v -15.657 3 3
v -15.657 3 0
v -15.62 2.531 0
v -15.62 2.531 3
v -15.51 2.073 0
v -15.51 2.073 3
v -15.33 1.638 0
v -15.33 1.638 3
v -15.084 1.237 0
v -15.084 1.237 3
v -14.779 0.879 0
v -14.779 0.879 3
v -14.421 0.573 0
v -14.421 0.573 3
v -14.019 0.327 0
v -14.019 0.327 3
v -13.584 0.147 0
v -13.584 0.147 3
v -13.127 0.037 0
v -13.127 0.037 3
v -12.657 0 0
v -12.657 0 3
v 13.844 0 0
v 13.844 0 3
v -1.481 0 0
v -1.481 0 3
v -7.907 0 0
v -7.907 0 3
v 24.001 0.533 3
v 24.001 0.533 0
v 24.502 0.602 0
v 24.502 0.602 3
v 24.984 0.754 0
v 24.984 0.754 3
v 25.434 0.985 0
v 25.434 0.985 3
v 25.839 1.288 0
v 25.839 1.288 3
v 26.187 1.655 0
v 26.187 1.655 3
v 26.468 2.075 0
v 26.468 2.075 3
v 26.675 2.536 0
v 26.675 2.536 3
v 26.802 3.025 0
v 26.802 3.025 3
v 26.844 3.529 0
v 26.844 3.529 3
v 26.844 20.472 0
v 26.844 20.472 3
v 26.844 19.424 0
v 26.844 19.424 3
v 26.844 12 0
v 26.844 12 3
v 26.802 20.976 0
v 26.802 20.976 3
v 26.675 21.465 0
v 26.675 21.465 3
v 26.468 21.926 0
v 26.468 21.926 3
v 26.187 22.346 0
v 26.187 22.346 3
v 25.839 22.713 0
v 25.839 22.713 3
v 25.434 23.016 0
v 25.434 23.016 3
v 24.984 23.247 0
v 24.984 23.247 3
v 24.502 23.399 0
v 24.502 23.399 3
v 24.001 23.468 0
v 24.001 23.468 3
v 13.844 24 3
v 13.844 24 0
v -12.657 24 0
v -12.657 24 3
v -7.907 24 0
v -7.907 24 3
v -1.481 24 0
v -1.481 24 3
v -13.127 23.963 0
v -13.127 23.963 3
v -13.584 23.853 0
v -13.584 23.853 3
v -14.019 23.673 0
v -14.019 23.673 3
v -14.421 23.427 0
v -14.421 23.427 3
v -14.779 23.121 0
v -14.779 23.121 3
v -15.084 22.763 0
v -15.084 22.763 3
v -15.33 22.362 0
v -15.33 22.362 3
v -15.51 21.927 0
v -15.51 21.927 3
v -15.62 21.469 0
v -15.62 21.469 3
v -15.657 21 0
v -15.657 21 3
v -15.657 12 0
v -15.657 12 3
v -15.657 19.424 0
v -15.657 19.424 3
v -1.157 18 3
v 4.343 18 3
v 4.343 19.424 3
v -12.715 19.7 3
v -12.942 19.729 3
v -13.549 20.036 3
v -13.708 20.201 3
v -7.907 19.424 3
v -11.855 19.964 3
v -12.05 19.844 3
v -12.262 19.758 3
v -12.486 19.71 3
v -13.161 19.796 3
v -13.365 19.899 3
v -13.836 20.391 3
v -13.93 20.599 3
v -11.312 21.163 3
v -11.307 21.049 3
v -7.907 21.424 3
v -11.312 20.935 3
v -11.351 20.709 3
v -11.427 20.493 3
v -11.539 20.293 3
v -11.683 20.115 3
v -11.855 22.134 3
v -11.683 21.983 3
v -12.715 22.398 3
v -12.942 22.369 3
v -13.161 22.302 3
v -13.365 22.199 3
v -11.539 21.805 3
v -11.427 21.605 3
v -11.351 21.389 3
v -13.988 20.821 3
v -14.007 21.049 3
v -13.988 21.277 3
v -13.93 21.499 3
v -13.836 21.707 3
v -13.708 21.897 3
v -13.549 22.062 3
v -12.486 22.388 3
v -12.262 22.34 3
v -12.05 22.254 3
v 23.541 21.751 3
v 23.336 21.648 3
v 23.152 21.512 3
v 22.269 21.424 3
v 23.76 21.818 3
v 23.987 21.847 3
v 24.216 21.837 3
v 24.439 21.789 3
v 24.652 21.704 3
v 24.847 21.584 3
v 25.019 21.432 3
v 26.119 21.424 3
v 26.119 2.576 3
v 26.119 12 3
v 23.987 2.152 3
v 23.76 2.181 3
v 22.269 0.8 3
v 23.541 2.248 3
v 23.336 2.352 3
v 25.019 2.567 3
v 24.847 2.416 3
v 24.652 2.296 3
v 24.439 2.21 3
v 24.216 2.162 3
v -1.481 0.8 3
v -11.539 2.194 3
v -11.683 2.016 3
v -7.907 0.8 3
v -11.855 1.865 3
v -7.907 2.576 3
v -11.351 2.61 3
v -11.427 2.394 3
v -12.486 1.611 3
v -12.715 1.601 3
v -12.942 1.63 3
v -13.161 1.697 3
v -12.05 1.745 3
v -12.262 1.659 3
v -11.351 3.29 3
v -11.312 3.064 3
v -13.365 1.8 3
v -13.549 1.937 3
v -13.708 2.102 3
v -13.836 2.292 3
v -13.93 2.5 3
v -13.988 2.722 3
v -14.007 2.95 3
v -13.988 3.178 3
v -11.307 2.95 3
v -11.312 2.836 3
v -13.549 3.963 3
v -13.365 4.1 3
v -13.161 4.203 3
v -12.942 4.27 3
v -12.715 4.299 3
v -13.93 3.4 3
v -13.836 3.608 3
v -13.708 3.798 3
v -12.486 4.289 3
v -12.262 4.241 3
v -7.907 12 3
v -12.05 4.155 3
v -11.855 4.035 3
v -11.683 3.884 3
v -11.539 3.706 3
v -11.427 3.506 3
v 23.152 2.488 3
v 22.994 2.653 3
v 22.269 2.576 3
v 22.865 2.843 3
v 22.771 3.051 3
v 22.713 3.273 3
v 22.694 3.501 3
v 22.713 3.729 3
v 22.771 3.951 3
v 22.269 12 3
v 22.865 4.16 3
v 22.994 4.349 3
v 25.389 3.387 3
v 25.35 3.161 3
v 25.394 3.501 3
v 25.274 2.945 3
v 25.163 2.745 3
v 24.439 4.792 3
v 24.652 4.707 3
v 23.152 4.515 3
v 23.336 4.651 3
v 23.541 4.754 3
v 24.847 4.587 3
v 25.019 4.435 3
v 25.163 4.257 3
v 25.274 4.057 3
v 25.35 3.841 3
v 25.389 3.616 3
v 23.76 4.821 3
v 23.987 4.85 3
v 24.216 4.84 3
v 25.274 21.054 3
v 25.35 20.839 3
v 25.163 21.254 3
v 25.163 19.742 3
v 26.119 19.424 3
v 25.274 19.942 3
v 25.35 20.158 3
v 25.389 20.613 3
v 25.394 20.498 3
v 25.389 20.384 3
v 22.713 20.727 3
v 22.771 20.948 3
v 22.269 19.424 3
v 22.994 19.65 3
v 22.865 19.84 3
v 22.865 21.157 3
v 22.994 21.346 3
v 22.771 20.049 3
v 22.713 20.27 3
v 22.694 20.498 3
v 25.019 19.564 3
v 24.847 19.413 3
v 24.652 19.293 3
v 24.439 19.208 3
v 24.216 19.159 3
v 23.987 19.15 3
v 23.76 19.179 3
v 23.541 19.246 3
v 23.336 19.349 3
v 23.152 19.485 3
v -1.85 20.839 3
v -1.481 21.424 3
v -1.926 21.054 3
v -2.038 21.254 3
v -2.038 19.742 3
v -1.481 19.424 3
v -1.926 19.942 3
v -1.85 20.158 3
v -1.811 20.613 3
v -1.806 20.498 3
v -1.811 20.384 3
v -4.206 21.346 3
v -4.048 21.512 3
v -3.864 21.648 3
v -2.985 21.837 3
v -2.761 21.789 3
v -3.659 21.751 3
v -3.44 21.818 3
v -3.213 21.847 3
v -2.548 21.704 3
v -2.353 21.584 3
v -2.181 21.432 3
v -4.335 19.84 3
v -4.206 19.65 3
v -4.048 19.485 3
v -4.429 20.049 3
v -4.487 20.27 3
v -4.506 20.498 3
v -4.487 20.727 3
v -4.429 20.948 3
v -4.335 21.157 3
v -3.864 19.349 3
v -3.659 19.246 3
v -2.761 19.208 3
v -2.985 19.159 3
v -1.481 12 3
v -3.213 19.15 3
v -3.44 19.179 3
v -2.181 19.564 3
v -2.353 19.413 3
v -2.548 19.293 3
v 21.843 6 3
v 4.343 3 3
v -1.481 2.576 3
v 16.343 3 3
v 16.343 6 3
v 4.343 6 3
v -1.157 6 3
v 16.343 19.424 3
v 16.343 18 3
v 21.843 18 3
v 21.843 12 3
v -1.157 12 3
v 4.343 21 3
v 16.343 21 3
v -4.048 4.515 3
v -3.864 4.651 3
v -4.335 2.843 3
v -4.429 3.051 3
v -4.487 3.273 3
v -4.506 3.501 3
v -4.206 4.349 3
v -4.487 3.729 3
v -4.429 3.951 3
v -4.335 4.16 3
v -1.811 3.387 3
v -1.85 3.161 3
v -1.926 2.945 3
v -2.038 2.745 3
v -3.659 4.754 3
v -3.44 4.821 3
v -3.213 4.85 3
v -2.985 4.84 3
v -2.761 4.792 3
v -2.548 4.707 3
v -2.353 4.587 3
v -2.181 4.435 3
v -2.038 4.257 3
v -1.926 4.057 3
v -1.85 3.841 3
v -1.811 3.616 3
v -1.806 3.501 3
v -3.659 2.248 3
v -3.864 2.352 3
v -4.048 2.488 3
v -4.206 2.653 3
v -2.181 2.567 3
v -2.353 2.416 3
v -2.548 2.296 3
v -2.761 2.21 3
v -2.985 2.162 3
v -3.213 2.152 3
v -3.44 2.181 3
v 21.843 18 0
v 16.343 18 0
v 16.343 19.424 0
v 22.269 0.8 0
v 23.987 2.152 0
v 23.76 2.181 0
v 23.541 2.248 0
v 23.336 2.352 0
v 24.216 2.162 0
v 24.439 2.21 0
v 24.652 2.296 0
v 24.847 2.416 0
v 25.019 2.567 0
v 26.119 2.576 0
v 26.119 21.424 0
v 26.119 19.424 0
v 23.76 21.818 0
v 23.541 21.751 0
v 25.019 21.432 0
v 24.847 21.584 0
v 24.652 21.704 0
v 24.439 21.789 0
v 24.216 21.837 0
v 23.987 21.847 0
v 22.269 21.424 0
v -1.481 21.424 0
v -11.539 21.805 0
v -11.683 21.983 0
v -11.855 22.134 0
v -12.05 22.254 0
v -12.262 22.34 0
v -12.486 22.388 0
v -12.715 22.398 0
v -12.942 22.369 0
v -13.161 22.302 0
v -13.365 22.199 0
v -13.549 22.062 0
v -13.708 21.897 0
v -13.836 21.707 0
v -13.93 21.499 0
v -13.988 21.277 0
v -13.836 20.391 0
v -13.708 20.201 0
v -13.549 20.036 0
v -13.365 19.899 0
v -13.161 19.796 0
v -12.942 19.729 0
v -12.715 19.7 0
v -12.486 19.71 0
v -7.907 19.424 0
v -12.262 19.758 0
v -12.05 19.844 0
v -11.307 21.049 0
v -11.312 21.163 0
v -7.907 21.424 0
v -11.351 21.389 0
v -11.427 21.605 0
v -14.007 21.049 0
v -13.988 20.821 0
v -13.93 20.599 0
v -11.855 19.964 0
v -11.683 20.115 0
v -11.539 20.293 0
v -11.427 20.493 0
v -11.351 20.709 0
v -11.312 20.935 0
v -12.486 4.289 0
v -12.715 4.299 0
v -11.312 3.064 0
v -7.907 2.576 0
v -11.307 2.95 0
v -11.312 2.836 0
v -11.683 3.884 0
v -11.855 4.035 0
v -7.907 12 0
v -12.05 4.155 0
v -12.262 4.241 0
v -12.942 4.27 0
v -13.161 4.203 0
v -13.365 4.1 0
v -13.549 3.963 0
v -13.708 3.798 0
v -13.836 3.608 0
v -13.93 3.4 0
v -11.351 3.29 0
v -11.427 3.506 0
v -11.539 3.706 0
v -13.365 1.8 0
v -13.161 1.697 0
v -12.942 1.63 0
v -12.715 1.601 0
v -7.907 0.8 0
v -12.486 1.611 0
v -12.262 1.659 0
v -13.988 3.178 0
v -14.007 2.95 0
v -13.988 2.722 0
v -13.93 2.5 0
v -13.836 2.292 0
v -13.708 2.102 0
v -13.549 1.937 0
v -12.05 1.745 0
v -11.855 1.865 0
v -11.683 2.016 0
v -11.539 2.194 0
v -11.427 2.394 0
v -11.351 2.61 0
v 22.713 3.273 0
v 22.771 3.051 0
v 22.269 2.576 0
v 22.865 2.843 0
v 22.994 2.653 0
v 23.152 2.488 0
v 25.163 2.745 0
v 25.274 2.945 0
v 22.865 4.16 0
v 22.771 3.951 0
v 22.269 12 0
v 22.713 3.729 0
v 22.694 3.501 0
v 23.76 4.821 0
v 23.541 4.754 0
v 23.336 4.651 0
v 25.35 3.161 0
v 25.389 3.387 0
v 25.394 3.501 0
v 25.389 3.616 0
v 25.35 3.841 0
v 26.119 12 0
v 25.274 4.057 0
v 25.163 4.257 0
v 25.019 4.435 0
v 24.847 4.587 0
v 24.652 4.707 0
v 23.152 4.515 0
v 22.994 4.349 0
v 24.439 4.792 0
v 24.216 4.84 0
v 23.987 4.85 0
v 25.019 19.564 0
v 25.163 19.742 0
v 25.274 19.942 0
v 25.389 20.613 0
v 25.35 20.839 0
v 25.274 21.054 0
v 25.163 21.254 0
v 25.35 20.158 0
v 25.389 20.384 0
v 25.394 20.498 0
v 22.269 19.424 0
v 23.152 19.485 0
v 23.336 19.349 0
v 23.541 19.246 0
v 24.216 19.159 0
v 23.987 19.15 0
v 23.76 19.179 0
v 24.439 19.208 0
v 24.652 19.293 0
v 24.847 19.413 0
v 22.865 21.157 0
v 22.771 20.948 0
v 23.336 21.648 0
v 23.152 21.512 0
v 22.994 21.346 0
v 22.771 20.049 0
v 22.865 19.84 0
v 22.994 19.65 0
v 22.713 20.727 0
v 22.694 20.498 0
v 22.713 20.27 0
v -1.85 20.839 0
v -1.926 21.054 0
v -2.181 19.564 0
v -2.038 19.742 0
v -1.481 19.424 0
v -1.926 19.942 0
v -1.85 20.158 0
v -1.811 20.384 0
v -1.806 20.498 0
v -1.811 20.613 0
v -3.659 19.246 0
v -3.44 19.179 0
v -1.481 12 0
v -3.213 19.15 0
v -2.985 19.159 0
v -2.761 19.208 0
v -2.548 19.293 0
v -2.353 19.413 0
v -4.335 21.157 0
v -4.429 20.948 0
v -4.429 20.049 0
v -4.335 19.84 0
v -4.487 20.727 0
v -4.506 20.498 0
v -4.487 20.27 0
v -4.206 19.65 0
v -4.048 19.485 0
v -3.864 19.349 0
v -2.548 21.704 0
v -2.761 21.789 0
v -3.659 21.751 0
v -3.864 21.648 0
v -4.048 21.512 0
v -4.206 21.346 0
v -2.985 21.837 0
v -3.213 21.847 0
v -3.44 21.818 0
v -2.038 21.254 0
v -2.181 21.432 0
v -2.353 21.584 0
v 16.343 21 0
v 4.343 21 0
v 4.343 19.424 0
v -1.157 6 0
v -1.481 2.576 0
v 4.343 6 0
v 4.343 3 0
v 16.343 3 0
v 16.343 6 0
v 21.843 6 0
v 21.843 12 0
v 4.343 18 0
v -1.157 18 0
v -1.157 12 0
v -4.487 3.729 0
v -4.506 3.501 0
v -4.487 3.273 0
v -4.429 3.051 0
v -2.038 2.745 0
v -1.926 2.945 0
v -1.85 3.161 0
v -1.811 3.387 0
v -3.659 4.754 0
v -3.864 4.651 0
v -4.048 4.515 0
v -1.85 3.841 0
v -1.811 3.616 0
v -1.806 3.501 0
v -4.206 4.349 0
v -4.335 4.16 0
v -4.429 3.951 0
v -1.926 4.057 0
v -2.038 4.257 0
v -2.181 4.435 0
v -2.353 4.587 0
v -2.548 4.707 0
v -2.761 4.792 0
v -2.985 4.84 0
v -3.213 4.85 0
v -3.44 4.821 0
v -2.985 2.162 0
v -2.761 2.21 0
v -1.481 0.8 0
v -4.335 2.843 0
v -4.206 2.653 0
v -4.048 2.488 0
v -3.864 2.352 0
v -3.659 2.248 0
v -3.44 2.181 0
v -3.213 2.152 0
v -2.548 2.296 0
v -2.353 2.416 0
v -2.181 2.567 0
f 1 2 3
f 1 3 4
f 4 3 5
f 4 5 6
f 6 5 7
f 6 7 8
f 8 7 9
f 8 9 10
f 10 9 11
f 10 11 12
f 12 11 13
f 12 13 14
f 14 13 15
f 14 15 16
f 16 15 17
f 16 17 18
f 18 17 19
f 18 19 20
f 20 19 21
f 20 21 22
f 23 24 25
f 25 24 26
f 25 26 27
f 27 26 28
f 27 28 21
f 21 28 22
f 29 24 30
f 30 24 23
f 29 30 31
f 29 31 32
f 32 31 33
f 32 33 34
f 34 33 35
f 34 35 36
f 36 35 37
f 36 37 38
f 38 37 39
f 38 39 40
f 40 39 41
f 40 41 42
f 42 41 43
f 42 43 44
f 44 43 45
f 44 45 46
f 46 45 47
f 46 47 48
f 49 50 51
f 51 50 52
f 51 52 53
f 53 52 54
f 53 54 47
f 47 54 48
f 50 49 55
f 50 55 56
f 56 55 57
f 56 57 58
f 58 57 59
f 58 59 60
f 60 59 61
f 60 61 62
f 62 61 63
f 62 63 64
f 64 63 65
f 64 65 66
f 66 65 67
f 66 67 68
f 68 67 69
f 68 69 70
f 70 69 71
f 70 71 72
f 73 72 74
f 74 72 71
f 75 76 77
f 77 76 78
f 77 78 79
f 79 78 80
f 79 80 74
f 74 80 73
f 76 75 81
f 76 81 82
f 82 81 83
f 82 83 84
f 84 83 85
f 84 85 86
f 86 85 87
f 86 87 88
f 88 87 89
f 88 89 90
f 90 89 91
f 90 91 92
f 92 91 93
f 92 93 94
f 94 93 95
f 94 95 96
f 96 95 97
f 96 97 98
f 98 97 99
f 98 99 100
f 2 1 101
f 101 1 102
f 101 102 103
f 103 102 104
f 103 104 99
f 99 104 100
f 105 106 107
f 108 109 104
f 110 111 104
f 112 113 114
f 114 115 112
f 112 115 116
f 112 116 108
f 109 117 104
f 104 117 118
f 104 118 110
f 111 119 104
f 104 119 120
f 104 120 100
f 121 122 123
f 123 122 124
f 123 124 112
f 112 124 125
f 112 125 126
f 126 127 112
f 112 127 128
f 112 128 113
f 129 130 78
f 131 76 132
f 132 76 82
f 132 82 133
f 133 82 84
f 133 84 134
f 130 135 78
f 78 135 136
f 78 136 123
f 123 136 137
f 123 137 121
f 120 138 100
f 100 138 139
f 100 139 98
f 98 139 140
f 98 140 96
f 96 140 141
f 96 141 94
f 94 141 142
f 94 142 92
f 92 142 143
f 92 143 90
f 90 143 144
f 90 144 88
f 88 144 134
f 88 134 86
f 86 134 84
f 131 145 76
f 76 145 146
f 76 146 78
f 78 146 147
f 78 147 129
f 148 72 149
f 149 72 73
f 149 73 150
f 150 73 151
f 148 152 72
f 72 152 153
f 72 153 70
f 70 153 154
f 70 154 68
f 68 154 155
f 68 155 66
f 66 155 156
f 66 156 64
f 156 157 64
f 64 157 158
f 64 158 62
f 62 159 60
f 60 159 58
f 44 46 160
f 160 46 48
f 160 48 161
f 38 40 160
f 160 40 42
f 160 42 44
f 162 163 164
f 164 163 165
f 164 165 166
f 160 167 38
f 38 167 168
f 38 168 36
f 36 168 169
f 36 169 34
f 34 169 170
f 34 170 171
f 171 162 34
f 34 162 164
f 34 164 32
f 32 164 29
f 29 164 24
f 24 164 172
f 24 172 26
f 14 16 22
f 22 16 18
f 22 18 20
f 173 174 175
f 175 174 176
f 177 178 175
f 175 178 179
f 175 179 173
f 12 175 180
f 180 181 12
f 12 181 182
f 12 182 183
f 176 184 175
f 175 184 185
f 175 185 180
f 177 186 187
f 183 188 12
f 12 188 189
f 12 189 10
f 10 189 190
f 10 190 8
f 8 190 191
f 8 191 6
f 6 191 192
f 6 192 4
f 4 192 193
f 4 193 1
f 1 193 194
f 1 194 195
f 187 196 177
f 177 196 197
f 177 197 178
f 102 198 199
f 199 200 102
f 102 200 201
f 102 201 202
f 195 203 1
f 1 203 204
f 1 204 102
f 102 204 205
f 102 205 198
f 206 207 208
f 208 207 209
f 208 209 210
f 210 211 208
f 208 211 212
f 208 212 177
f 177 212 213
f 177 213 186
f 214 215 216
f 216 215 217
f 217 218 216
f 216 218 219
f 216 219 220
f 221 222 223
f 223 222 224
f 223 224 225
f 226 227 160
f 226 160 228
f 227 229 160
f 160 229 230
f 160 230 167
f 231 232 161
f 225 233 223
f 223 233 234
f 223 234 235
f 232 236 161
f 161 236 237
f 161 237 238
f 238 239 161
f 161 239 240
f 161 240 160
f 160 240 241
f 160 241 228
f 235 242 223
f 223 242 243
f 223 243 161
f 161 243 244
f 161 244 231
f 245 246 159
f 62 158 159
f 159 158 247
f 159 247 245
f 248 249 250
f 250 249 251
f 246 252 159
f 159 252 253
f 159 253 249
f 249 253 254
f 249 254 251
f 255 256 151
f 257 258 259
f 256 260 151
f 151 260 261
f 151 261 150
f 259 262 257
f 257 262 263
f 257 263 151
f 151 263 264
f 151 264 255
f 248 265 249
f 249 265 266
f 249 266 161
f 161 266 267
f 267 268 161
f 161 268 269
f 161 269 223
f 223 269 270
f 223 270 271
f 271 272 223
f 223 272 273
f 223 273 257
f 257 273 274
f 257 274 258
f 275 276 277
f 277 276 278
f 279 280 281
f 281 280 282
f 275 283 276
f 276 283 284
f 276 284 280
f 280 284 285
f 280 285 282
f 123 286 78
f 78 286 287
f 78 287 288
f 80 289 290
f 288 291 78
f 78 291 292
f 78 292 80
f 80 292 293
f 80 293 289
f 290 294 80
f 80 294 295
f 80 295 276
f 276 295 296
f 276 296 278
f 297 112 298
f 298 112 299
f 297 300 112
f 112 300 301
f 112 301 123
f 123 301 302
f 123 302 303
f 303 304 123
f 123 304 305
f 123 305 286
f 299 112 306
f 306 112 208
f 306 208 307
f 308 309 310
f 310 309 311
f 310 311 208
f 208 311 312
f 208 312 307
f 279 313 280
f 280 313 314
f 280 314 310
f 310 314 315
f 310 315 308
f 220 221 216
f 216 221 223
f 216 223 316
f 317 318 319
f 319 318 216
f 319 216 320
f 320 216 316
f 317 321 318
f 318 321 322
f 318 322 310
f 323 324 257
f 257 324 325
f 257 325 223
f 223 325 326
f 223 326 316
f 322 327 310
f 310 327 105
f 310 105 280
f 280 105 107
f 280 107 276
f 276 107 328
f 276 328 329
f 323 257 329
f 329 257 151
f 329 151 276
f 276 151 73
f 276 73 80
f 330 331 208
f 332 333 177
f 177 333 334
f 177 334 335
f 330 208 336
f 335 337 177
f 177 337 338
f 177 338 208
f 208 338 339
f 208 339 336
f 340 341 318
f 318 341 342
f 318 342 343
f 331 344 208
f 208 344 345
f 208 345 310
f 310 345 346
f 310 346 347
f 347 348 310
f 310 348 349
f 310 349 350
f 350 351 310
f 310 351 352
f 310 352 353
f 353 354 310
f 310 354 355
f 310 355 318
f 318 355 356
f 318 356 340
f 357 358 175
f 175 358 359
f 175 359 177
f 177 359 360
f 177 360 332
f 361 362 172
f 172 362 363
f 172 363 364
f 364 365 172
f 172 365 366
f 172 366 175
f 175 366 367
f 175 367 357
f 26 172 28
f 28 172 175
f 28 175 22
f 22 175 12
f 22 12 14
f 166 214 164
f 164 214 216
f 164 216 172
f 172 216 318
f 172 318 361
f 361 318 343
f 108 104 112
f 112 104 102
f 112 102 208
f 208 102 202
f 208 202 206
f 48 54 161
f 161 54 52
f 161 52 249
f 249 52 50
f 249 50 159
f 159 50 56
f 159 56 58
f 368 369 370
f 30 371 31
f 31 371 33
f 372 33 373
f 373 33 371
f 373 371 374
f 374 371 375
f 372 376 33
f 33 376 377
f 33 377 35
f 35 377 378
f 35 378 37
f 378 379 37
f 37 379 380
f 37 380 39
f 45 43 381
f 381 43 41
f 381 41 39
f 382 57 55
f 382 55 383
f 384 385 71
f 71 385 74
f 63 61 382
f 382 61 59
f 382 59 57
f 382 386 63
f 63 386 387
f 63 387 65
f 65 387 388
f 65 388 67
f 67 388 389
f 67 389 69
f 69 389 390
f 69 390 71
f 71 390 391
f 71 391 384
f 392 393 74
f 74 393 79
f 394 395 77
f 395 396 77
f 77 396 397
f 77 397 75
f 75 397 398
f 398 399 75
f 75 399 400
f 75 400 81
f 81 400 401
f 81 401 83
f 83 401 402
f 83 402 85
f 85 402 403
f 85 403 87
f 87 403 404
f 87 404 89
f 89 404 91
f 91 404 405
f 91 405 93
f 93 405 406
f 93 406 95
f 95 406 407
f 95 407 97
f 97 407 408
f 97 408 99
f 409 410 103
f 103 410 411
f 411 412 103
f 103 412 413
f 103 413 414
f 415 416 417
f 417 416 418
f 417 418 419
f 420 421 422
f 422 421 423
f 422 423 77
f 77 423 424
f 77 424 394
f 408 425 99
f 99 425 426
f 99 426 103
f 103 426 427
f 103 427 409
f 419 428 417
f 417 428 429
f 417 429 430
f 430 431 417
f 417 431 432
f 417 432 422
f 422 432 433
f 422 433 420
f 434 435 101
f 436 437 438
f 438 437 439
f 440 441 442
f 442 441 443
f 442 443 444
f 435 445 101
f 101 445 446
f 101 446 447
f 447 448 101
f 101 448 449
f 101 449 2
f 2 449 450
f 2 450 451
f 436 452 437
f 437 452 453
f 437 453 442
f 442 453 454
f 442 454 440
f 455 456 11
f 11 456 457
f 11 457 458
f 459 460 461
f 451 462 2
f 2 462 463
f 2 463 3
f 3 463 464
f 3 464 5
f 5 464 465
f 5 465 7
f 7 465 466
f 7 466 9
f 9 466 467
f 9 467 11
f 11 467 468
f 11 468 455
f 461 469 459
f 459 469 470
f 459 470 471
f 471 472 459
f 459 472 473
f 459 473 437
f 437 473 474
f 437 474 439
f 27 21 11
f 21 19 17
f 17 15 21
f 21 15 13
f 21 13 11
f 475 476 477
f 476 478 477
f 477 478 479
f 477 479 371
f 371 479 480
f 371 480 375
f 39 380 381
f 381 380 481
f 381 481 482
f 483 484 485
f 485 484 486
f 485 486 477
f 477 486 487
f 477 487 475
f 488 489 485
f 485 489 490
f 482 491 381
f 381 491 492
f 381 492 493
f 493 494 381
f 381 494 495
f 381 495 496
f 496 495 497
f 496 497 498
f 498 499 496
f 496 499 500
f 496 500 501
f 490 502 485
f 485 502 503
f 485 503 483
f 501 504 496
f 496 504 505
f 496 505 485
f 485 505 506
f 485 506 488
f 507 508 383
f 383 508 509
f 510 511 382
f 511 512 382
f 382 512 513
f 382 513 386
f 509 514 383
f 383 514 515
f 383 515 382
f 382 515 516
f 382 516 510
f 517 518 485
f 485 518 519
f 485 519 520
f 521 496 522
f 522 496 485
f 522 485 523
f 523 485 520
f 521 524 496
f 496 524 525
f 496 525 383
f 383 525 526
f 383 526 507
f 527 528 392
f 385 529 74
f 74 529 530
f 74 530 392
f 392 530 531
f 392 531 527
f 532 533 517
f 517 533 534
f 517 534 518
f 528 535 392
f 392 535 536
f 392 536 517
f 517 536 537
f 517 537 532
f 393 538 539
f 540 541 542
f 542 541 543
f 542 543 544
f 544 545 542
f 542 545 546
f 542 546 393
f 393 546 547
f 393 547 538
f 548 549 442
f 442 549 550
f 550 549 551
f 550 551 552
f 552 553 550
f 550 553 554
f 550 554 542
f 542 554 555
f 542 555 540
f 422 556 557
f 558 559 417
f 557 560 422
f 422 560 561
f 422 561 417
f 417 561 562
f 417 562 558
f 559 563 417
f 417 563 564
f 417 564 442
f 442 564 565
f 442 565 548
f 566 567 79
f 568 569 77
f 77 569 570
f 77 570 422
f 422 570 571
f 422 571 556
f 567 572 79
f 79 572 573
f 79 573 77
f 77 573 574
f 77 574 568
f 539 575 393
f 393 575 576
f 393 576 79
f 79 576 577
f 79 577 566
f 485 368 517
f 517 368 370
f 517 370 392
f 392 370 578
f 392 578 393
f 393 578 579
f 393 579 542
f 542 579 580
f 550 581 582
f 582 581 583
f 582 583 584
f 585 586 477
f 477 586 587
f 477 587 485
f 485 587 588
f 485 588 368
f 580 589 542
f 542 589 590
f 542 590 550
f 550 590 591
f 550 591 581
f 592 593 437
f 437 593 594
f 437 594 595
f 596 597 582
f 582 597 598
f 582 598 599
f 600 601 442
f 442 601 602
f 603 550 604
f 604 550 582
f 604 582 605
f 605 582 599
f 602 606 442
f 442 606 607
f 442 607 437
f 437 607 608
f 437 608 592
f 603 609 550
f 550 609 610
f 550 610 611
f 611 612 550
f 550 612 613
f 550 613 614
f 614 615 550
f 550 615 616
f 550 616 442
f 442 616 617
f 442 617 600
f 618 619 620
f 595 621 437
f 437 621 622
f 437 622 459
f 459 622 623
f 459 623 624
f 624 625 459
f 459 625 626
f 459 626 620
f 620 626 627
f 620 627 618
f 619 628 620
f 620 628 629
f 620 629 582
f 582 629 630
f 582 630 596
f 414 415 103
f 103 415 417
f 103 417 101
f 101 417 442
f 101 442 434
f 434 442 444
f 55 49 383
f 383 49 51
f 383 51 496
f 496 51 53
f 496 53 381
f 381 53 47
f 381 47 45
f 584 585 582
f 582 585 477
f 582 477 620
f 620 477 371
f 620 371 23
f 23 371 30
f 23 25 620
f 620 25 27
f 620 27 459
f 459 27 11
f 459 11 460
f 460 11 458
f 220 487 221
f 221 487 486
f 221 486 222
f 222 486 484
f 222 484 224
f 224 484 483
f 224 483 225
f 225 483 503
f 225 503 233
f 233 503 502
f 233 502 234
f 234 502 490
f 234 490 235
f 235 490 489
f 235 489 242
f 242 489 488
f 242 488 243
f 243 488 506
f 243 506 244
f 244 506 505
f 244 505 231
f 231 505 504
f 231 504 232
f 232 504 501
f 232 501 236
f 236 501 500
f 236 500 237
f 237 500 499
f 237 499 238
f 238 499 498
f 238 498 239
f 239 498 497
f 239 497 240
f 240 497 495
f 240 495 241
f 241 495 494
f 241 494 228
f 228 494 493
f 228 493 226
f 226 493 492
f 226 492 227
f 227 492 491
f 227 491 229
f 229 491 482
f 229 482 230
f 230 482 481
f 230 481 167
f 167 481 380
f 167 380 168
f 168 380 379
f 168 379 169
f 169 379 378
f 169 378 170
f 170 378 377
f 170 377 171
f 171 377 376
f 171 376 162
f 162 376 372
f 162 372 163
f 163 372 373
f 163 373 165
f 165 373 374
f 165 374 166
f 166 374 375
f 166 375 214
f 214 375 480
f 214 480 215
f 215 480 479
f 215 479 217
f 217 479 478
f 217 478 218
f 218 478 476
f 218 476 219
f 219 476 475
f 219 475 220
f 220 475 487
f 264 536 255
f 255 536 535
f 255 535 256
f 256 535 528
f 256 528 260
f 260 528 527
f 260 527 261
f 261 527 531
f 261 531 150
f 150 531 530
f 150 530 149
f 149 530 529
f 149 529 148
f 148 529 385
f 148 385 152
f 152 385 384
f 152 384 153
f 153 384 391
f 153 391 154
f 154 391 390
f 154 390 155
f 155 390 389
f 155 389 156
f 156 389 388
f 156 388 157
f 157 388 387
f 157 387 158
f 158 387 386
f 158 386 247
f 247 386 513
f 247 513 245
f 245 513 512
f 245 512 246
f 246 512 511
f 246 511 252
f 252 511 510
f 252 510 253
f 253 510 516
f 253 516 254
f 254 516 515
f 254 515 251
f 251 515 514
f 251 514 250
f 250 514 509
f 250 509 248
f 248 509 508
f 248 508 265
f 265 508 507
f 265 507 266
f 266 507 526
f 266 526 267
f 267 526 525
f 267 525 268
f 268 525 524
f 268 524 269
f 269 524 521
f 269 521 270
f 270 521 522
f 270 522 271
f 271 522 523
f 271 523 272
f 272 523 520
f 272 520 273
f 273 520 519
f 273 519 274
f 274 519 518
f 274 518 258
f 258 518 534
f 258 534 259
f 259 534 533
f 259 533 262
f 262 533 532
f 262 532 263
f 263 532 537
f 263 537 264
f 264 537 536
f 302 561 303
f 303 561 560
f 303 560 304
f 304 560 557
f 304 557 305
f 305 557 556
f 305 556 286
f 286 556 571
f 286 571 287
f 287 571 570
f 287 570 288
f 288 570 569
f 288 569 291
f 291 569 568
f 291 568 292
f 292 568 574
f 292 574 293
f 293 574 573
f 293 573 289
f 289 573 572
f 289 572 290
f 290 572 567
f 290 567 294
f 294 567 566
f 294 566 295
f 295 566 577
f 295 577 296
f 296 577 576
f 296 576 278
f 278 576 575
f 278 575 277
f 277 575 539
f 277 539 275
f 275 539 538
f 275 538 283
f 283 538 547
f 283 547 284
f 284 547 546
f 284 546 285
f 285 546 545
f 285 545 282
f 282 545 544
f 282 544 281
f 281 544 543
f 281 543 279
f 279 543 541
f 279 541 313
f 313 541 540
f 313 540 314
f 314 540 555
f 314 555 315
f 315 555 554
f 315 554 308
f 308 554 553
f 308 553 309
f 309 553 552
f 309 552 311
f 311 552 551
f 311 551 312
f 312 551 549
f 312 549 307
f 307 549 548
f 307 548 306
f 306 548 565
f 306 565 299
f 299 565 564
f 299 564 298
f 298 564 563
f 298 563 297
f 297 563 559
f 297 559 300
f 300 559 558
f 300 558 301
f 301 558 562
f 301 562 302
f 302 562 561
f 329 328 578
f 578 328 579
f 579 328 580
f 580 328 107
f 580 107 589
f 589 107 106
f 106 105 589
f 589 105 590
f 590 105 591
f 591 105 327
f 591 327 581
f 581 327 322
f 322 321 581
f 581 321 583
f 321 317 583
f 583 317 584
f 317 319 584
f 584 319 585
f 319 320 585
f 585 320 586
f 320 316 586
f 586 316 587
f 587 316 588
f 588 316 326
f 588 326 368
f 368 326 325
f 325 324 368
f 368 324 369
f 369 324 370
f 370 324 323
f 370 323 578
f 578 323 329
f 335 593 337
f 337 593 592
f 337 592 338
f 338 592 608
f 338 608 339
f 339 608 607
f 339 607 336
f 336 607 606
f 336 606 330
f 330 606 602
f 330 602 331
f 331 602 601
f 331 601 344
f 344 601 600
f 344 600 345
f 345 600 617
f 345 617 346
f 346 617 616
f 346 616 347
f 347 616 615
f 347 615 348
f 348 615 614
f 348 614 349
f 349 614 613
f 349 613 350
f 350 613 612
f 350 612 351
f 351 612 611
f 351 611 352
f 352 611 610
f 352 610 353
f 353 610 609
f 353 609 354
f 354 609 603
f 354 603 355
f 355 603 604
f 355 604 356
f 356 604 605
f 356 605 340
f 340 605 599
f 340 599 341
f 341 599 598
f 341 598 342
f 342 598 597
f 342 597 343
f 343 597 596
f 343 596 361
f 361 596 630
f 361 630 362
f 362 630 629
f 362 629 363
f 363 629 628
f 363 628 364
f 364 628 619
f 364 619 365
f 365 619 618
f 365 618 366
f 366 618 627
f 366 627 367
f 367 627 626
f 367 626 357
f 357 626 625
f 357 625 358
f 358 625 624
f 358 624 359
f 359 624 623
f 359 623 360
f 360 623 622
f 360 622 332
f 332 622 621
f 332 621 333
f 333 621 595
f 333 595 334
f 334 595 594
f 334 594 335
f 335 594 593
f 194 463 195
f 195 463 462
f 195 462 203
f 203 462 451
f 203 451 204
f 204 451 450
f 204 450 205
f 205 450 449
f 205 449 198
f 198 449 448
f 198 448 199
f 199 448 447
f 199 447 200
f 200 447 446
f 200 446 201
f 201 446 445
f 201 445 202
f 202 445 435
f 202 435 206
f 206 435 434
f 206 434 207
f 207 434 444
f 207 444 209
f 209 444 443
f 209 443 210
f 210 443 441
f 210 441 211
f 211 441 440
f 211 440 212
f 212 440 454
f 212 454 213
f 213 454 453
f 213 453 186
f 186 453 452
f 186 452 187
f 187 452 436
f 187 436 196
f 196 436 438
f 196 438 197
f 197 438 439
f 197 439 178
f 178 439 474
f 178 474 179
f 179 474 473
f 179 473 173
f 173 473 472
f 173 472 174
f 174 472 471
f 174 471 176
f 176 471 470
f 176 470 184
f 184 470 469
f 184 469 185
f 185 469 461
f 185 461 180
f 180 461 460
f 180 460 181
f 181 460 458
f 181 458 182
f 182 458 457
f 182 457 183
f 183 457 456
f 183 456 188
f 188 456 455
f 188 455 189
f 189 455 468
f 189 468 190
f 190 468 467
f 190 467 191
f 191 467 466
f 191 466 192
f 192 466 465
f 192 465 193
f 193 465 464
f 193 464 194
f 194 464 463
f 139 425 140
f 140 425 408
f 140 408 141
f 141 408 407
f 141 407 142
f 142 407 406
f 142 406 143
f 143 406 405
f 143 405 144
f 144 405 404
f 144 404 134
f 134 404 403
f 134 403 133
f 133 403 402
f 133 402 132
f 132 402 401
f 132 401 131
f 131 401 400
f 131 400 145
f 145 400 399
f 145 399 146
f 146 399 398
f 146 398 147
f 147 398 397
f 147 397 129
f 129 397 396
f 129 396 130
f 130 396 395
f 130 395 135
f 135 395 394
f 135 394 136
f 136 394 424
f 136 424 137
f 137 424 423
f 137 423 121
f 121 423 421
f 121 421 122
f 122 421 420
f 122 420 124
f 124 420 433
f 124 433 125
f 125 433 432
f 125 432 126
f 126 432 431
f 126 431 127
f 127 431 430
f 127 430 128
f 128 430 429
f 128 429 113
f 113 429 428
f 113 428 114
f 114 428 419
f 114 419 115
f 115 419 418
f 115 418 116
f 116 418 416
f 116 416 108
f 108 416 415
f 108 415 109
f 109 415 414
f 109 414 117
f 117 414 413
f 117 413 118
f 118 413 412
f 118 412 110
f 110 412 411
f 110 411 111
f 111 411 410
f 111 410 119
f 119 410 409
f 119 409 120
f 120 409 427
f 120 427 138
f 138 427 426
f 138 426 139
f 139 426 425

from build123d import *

# Parameters (mm, degrees)
SKETCH_1_R      = 1.35
EXTRUDE_1_DEPTH = 3


with BuildPart() as part:
    # 草图1 → 凸台-拉伸1 (new body)
    with BuildSketch(Plane(origin=(0, 0, 0), x_dir=(-1, 0, 0), z_dir=(0, 0, -1))):
        with BuildLine():
            Line((15.657318156, 3), (15.657318156, 20.9998))
            ThreePointArc((15.657318156, 20.9998), (14.7786385, 23.121120344), (12.657318156, 23.9998))
            Line((12.657318156, 23.9998), (-13.843681844, 23.9998))
            Line((-13.843681844, 23.9998), (-24.001092054, 23.467804703))
            ThreePointArc((-24.001092054, 23.467804703), (-26.020271299, 22.537010177), (-26.844181844, 20.471910982))
            Line((-26.844181844, 20.471910982), (-26.844181844, 3.528889024))
            ThreePointArc((-26.844181844, 3.528889024), (-26.020372671, 1.463896655), (-24.001386189, 0.533010723))
            Line((-24.001386189, 0.533010723), (-13.843681844, 0))
            Line((-13.843681844, 0), (12.657318156, 0))
            ThreePointArc((12.657318156, 0), (14.7786385, 0.878679656), (15.657318156, 3))
        make_face()
        with Locations(Location((-24.044031844, 3.501148349, 0), (0, 0, 180))):
            Circle(SKETCH_1_R, mode=Mode.SUBTRACT)
        with Locations(Location((-24.044031844, 20.498351651, 0), (0, 0, 180))):
            Circle(SKETCH_1_R, mode=Mode.SUBTRACT)
        with Locations(Location((3.156018156, 20.498351651, 0), (0, 0, 180))):
            Circle(SKETCH_1_R, mode=Mode.SUBTRACT)
        with Locations(Location((3.156018156, 3.501148349, 0), (0, 0, 180))):
            Circle(SKETCH_1_R, mode=Mode.SUBTRACT)
        with Locations(Location((12.657468156, 2.95, 0), (0, 0, 180))):
            Circle(SKETCH_1_R, mode=Mode.SUBTRACT)
        with Locations(Location((12.657468156, 21.049, 0), (0, 0, 180))):
            Circle(SKETCH_1_R, mode=Mode.SUBTRACT)
        Polygon((-4.343381844, 20.9998), (-4.343381844, 17.9998), (1.156518156, 17.9998), (1.156518156, 6), (-4.343381844, 6), (-4.343381844, 3), (-16.343381844, 3), (-16.343381844, 6), (-21.843181844, 6), (-21.843181844, 17.9998), (-16.343381844, 17.9998), (-16.343381844, 20.9998), align=None, mode=Mode.SUBTRACT)
    extrude(amount=-EXTRUDE_1_DEPTH)


solid = part.part
